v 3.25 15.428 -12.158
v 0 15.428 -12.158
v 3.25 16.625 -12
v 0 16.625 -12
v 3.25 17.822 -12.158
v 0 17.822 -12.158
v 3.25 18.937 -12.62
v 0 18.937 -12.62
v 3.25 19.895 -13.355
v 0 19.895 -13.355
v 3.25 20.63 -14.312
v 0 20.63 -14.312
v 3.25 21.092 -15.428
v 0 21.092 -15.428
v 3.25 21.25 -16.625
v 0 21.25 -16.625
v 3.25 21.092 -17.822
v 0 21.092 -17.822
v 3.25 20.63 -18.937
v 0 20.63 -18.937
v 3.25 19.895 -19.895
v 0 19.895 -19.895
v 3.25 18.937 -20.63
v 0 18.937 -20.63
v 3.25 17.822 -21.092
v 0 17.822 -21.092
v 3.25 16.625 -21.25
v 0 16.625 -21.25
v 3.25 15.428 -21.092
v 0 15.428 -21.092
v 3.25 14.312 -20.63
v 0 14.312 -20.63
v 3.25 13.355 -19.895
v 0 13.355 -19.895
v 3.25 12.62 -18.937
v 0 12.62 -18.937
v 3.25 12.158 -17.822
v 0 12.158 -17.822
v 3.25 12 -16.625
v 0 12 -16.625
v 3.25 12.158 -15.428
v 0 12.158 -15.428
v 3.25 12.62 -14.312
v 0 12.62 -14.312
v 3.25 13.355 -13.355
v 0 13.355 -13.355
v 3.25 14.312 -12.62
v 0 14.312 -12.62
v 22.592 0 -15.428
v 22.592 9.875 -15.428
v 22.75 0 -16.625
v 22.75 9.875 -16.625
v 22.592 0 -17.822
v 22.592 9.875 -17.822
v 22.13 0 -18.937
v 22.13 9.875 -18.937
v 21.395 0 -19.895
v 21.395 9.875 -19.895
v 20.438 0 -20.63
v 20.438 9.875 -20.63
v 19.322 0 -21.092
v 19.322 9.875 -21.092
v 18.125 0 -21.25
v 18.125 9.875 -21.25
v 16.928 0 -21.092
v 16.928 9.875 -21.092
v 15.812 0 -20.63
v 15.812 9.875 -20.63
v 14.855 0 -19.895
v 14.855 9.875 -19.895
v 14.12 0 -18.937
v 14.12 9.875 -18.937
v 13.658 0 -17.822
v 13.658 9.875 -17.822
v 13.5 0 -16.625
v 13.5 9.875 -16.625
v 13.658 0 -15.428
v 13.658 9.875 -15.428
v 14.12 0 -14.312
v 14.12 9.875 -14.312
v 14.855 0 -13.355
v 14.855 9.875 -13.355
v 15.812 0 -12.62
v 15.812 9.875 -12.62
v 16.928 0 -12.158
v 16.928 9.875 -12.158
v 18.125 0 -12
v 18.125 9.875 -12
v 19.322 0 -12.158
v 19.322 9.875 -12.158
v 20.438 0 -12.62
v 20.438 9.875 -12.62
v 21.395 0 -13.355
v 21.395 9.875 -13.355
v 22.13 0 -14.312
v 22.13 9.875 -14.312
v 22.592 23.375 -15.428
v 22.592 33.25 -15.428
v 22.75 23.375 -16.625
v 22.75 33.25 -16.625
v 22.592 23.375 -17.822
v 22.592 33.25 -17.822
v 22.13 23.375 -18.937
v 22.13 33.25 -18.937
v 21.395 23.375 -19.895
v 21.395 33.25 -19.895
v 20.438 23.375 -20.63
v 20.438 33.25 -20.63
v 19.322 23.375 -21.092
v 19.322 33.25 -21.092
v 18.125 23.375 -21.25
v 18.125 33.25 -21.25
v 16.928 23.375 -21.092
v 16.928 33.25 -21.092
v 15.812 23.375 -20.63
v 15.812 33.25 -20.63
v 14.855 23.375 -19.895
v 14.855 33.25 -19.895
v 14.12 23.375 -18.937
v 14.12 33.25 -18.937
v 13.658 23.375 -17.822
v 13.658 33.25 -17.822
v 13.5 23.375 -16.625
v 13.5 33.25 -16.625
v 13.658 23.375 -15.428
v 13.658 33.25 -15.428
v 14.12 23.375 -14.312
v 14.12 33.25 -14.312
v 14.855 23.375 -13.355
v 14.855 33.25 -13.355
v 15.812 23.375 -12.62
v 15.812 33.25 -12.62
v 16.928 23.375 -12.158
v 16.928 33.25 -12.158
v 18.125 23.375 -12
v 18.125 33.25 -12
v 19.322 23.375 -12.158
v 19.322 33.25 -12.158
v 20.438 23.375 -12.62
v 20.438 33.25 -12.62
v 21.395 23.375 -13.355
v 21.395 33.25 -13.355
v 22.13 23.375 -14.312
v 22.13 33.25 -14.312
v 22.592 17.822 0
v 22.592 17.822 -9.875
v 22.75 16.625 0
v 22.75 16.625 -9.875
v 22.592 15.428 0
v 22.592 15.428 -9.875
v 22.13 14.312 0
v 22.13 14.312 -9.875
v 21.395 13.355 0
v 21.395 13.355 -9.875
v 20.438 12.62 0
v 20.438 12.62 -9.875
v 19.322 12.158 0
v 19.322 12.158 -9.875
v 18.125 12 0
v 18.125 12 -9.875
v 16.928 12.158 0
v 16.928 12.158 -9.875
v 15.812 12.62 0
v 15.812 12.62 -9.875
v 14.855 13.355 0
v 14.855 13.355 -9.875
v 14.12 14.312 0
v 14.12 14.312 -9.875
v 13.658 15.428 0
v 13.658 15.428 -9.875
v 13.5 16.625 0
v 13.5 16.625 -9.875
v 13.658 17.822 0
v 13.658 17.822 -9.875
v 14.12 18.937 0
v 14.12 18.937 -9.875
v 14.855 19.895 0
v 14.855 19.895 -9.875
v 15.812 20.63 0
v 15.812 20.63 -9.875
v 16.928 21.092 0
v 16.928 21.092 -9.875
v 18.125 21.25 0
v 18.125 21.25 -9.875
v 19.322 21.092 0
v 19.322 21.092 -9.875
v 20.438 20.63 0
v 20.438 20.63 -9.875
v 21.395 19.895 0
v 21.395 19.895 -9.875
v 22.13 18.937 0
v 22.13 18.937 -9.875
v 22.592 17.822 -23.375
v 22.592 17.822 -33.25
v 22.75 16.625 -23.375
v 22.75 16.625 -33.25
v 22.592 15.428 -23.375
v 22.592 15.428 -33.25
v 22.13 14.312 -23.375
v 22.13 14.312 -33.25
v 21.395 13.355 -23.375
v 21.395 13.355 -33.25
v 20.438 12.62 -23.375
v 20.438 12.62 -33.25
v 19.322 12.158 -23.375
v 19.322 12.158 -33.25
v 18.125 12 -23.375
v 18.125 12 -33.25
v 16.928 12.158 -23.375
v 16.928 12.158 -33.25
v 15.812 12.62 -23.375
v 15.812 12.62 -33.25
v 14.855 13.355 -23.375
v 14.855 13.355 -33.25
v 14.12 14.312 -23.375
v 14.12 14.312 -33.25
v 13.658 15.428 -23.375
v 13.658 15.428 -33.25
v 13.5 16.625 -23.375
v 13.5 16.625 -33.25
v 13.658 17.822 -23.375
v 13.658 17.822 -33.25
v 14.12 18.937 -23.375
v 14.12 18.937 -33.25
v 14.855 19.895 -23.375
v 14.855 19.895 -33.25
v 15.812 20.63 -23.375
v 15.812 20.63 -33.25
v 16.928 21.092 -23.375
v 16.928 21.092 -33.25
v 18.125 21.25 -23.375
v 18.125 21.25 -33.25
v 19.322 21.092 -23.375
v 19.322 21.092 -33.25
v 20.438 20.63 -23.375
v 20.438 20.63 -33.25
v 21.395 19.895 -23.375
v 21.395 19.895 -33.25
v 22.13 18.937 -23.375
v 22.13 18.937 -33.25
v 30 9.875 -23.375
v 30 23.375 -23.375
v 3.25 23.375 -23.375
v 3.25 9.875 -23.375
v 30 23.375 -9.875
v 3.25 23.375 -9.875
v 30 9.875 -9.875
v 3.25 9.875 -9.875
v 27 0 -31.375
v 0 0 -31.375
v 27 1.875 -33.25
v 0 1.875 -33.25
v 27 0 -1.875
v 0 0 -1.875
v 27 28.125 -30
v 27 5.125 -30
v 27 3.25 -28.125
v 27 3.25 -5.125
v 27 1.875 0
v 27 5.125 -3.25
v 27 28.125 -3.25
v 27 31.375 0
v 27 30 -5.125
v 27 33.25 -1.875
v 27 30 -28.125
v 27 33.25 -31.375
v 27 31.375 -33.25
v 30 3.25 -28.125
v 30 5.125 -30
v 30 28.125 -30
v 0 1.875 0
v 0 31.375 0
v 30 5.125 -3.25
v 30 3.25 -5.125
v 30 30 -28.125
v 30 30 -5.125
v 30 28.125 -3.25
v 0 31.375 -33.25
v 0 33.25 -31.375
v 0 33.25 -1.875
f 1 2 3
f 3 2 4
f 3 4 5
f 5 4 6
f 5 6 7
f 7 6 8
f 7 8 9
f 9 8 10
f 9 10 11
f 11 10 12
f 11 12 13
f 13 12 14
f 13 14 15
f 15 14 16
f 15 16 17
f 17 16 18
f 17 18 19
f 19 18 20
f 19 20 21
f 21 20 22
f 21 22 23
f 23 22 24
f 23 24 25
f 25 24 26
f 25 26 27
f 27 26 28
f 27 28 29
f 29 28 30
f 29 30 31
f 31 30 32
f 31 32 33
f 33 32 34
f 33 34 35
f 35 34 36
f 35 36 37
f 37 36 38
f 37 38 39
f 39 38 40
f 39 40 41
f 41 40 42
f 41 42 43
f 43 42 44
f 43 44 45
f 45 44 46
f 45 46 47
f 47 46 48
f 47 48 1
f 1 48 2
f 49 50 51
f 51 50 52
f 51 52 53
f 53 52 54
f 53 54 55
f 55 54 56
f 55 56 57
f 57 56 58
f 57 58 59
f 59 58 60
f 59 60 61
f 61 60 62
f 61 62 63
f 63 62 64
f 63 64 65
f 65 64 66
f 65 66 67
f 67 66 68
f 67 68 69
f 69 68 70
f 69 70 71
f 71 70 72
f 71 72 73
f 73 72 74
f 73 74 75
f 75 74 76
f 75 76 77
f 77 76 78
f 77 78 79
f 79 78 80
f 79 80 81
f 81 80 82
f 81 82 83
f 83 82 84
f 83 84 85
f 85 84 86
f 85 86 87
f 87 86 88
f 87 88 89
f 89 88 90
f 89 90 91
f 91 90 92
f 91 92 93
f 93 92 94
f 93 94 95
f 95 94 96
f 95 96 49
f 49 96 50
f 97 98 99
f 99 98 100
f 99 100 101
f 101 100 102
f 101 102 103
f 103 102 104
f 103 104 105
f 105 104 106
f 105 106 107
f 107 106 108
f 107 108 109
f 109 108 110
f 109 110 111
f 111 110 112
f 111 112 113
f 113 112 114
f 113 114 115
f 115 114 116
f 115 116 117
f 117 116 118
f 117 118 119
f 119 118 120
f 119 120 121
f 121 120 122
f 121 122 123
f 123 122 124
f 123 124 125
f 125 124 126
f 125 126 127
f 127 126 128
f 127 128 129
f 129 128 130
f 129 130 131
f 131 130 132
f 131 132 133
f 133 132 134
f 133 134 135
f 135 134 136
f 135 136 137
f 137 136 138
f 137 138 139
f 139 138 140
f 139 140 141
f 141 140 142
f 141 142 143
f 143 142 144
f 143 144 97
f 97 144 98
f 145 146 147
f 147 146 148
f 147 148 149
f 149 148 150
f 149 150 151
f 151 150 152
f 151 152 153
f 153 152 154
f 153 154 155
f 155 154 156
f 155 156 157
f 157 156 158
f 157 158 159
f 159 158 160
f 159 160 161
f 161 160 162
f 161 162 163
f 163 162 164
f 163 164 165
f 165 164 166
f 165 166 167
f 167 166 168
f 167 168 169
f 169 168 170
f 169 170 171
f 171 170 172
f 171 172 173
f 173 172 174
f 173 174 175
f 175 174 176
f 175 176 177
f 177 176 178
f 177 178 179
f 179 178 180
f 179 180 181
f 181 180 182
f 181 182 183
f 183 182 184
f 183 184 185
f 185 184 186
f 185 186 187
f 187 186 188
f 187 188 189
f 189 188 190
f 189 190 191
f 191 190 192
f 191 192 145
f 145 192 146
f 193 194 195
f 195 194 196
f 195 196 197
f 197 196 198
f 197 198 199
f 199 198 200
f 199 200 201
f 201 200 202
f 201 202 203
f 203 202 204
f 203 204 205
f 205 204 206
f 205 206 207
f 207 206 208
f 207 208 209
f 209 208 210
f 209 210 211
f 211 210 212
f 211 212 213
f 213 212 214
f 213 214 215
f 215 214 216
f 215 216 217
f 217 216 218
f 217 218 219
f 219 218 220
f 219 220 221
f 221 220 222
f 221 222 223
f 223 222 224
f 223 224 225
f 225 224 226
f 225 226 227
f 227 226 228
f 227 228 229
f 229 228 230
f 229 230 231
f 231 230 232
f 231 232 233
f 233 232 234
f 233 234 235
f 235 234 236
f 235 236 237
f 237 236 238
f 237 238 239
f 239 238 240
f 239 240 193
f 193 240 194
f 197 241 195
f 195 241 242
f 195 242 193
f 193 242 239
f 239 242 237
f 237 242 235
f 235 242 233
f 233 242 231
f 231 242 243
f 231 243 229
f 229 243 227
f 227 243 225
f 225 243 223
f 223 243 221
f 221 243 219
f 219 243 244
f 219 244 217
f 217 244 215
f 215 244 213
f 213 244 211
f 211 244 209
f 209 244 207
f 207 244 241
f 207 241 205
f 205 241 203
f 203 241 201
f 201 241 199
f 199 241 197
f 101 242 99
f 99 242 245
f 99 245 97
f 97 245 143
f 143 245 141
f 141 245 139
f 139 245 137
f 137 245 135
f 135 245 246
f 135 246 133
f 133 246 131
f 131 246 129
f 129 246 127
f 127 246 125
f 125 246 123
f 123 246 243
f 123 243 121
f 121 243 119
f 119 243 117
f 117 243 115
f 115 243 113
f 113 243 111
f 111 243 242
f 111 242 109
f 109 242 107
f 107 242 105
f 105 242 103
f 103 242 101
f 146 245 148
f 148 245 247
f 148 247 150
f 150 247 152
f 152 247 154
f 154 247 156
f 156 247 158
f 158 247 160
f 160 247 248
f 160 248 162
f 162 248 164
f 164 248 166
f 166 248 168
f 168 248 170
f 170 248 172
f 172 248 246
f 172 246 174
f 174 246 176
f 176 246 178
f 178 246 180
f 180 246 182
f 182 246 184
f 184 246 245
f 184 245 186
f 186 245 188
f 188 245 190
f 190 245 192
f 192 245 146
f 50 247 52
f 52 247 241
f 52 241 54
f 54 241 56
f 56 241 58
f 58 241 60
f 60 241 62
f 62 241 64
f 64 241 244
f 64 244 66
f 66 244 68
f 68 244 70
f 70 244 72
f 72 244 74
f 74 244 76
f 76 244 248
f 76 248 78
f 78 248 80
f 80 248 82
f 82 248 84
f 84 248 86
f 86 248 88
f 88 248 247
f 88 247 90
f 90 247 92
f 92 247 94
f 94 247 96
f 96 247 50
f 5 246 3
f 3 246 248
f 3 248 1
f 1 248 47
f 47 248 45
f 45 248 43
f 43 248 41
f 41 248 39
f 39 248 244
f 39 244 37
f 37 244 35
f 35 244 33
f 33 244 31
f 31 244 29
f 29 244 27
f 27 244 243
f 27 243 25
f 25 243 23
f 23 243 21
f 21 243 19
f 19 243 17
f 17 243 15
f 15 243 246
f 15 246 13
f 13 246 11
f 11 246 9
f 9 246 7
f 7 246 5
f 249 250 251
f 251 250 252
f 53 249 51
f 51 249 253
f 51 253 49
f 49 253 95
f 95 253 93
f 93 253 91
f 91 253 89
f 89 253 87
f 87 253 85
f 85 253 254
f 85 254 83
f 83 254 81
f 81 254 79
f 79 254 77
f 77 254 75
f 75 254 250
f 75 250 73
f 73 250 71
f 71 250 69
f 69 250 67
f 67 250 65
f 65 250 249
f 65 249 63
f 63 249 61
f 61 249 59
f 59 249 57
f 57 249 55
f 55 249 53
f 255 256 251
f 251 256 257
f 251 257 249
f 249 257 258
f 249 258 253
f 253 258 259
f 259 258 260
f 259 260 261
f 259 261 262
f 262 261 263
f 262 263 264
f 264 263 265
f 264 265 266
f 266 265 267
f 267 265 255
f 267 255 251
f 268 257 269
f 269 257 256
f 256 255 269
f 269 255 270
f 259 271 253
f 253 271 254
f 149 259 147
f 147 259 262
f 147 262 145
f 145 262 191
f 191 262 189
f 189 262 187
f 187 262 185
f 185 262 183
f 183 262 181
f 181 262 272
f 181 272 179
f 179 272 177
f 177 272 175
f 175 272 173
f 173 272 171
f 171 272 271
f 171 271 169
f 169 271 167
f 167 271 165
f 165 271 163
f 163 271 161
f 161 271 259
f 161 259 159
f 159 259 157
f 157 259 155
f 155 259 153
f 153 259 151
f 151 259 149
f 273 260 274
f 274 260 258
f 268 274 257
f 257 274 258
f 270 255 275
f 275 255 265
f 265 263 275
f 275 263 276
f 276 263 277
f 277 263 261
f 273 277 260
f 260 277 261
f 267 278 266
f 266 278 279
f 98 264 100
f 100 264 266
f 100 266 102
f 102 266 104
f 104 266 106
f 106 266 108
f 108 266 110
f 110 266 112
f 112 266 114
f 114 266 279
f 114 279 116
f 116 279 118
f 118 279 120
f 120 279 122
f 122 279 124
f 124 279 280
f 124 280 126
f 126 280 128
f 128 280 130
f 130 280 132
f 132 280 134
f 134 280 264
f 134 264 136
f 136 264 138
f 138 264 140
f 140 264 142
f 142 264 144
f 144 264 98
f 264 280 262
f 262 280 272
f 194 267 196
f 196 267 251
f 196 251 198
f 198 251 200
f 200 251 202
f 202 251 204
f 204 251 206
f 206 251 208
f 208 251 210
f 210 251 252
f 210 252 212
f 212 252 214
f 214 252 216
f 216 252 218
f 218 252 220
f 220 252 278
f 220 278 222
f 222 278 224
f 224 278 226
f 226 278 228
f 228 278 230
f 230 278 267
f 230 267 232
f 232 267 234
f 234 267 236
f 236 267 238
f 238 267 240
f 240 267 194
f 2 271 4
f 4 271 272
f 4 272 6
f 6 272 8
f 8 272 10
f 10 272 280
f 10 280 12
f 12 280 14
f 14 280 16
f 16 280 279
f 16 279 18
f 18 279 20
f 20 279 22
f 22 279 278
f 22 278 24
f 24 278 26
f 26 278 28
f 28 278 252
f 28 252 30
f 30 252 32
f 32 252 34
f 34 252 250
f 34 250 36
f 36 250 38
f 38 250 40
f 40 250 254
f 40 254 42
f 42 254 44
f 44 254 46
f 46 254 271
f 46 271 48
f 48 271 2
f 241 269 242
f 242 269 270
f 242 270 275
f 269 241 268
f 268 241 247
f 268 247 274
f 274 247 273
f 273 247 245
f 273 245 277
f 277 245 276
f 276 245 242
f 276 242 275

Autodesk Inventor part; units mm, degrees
ref_plane "YZ Plane" through (0, 0, 0) normal (1, 0, 0) x (0, 1, 0)
ref_plane "XZ Plane" through (0, 0, 0) normal (0, 1, 0) x (-1, 0, 0)
ref_plane "XY Plane" through (0, 0, 0) normal (0, 0, 1) x (1, 0, 0)
sketch "Sketch1" plane through (0, 0, 0) normal (1, 0, 0) x (0, 1, 0)
  line L0 (0, 0) -> (33.25, 0)
  line L1 (33.25, 0) -> (33.25, -33.25)
  line L2 (33.25, -33.25) -> (0, -33.25)
  line L3 (0, -33.25) -> (0, 0)
  dimension "d0" = 33.25
  dimension "d1" = 33.25
extrude "Extrusion1" add sketch "Sketch1" along normal blind 30
sketch "Sketch2" plane through (30, 0, 0) normal (1, 0, 0) x (0, 0, -1)
  line L0 (3.25, 3.25) -> (30, 3.25)
  line L1 (30, 3.25) -> (30, 30)
  line L2 (30, 30) -> (3.25, 30)
  line L3 (3.25, 30) -> (3.25, 3.25)
  point P0 (0, 0)
  dimension "d4" = 26.75
  dimension "d5" = 26.75
sketch "Sketch3" plane through (30, 0, 0) normal (1, 0, 0) x (0, 0, -1)
  line L0 (33.25, 0) -> (33.25, 33.25) projected
  line L1 (0, 0) -> (33.25, 0)
  line L2 (33.25, 0) -> (33.25, 33.25)
  line L3 (33.25, 33.25) -> (0, 33.25)
  line L4 (0, 33.25) -> (0, 0)
sketch "Sketch4" plane through (30, 0, 0) normal (1, 0, 0) x (0, 0, -1)
  line L0 (3.25, 3.25) -> (30, 3.25)
  line L1 (30, 3.25) -> (30, 30)
  line L2 (30, 30) -> (3.25, 30)
  line L3 (3.25, 30) -> (3.25, 3.25)
  line L4 (0, 33.25) -> (0, 0) projected
  line L5 (33.25, 0) -> (33.25, 33.25) projected
  line L6 (0, 0) -> (33.25, 0)
  line L7 (33.25, 0) -> (33.25, 33.25)
  line L8 (33.25, 33.25) -> (0, 33.25)
  line L9 (0, 33.25) -> (0, 0)
  dimension "d6" = 26.75
  dimension "d7" = 26.75
extrude "Extrusion2" cut sketch "Sketch4" against normal blind 3
chamfer "Chamfer1" distance 1.875 angle 45 8 edges at (13.5, 33.25, 0) (13.5, 33.25, -33.25) (28.5, 30, -3.25) (28.5, 30, -30) (28.5, 3.25, -3.25) (13.5, 0, 0) (28.5, 3.25, -30) (13.5, 0, -33.25)
sketch "Sketch5" plane through (30, 0, 0) normal (1, 0, 0) x (0, 0, -1)
  line L0 (9.875, 9.875) -> (23.375, 9.875)
  line L1 (23.375, 9.875) -> (23.375, 23.375)
  line L2 (23.375, 23.375) -> (9.875, 23.375)
  line L3 (9.875, 23.375) -> (9.875, 9.875)
  line L4 (28.125, 30) -> (5.125, 30) projected
  line L5 (30, 5.125) -> (30, 28.125) projected
  line L6 (3.25, 3.25) -> (30, 3.25)
  line L7 (30, 3.25) -> (30, 30)
  line L8 (30, 30) -> (3.25, 30)
  line L9 (3.25, 30) -> (3.25, 3.25)
  point P0 (0, 0)
  dimension "d13" = 13.5
  dimension "d14" = 13.5
  dimension "d15" = 6.625
  dimension "d16" = 6.625
extrude "Extrusion3" cut sketch "Sketch5" against normal blind 26.75 contours L3 L2 L1 L0
sketch "Sketch6" plane through (0, 1.875, 0) normal (0, 0, 1) x (1, 0, 0)
  point P0 (0, -1.875)
sketch "Sketch7" plane through (0, 1.875, 0) normal (0, 0, 1) x (1, 0, 0)
  circle A0 centre (18.125, 14.75) radius 4.625
  point P0 (0, -1.875)
  dimension "d19" = 9.25
extrude "Extrusion4" cut sketch "Sketch7" against normal blind 33.25
sketch "Sketch8" plane through (0, 0, -31.375) normal (0, -1, 0) x (1, 0, 0)
  circle A0 centre (18.125, 14.75) radius 4.625
  point P0 (0, 31.375)
  dimension "d22" = 9.25
extrude "Extrusion5" cut sketch "Sketch8" against normal blind 33.25
thread "Thread1" size "M10x1.5" class "6H" standard "ANSI Metric M Profile" full length
thread "Thread2" size "M10x1.5" class "6H" standard "ANSI Metric M Profile" full length
thread "Thread3" size "M10x1.5" class "6H" standard "ANSI Metric M Profile" full length
thread "Thread4" size "M10x1.5" class "6H" standard "ANSI Metric M Profile" full length
sketch "Sketch9" plane through (0, 0, 0) normal (-1, 0, 0) x (0, 0, 1)
  circle A0 centre (-16.625, 16.625) radius 4.625
  point P0 (0, 0)
  dimension "d33" = 9.25
extrude "Extrusion6" cut sketch "Sketch9" against normal blind 10
thread "Thread5" size "M10x1.5" class "6H" standard "ANSI Metric M Profile" full length
properties part number "cuvette holder blockBASE_with_bottom_drain"
